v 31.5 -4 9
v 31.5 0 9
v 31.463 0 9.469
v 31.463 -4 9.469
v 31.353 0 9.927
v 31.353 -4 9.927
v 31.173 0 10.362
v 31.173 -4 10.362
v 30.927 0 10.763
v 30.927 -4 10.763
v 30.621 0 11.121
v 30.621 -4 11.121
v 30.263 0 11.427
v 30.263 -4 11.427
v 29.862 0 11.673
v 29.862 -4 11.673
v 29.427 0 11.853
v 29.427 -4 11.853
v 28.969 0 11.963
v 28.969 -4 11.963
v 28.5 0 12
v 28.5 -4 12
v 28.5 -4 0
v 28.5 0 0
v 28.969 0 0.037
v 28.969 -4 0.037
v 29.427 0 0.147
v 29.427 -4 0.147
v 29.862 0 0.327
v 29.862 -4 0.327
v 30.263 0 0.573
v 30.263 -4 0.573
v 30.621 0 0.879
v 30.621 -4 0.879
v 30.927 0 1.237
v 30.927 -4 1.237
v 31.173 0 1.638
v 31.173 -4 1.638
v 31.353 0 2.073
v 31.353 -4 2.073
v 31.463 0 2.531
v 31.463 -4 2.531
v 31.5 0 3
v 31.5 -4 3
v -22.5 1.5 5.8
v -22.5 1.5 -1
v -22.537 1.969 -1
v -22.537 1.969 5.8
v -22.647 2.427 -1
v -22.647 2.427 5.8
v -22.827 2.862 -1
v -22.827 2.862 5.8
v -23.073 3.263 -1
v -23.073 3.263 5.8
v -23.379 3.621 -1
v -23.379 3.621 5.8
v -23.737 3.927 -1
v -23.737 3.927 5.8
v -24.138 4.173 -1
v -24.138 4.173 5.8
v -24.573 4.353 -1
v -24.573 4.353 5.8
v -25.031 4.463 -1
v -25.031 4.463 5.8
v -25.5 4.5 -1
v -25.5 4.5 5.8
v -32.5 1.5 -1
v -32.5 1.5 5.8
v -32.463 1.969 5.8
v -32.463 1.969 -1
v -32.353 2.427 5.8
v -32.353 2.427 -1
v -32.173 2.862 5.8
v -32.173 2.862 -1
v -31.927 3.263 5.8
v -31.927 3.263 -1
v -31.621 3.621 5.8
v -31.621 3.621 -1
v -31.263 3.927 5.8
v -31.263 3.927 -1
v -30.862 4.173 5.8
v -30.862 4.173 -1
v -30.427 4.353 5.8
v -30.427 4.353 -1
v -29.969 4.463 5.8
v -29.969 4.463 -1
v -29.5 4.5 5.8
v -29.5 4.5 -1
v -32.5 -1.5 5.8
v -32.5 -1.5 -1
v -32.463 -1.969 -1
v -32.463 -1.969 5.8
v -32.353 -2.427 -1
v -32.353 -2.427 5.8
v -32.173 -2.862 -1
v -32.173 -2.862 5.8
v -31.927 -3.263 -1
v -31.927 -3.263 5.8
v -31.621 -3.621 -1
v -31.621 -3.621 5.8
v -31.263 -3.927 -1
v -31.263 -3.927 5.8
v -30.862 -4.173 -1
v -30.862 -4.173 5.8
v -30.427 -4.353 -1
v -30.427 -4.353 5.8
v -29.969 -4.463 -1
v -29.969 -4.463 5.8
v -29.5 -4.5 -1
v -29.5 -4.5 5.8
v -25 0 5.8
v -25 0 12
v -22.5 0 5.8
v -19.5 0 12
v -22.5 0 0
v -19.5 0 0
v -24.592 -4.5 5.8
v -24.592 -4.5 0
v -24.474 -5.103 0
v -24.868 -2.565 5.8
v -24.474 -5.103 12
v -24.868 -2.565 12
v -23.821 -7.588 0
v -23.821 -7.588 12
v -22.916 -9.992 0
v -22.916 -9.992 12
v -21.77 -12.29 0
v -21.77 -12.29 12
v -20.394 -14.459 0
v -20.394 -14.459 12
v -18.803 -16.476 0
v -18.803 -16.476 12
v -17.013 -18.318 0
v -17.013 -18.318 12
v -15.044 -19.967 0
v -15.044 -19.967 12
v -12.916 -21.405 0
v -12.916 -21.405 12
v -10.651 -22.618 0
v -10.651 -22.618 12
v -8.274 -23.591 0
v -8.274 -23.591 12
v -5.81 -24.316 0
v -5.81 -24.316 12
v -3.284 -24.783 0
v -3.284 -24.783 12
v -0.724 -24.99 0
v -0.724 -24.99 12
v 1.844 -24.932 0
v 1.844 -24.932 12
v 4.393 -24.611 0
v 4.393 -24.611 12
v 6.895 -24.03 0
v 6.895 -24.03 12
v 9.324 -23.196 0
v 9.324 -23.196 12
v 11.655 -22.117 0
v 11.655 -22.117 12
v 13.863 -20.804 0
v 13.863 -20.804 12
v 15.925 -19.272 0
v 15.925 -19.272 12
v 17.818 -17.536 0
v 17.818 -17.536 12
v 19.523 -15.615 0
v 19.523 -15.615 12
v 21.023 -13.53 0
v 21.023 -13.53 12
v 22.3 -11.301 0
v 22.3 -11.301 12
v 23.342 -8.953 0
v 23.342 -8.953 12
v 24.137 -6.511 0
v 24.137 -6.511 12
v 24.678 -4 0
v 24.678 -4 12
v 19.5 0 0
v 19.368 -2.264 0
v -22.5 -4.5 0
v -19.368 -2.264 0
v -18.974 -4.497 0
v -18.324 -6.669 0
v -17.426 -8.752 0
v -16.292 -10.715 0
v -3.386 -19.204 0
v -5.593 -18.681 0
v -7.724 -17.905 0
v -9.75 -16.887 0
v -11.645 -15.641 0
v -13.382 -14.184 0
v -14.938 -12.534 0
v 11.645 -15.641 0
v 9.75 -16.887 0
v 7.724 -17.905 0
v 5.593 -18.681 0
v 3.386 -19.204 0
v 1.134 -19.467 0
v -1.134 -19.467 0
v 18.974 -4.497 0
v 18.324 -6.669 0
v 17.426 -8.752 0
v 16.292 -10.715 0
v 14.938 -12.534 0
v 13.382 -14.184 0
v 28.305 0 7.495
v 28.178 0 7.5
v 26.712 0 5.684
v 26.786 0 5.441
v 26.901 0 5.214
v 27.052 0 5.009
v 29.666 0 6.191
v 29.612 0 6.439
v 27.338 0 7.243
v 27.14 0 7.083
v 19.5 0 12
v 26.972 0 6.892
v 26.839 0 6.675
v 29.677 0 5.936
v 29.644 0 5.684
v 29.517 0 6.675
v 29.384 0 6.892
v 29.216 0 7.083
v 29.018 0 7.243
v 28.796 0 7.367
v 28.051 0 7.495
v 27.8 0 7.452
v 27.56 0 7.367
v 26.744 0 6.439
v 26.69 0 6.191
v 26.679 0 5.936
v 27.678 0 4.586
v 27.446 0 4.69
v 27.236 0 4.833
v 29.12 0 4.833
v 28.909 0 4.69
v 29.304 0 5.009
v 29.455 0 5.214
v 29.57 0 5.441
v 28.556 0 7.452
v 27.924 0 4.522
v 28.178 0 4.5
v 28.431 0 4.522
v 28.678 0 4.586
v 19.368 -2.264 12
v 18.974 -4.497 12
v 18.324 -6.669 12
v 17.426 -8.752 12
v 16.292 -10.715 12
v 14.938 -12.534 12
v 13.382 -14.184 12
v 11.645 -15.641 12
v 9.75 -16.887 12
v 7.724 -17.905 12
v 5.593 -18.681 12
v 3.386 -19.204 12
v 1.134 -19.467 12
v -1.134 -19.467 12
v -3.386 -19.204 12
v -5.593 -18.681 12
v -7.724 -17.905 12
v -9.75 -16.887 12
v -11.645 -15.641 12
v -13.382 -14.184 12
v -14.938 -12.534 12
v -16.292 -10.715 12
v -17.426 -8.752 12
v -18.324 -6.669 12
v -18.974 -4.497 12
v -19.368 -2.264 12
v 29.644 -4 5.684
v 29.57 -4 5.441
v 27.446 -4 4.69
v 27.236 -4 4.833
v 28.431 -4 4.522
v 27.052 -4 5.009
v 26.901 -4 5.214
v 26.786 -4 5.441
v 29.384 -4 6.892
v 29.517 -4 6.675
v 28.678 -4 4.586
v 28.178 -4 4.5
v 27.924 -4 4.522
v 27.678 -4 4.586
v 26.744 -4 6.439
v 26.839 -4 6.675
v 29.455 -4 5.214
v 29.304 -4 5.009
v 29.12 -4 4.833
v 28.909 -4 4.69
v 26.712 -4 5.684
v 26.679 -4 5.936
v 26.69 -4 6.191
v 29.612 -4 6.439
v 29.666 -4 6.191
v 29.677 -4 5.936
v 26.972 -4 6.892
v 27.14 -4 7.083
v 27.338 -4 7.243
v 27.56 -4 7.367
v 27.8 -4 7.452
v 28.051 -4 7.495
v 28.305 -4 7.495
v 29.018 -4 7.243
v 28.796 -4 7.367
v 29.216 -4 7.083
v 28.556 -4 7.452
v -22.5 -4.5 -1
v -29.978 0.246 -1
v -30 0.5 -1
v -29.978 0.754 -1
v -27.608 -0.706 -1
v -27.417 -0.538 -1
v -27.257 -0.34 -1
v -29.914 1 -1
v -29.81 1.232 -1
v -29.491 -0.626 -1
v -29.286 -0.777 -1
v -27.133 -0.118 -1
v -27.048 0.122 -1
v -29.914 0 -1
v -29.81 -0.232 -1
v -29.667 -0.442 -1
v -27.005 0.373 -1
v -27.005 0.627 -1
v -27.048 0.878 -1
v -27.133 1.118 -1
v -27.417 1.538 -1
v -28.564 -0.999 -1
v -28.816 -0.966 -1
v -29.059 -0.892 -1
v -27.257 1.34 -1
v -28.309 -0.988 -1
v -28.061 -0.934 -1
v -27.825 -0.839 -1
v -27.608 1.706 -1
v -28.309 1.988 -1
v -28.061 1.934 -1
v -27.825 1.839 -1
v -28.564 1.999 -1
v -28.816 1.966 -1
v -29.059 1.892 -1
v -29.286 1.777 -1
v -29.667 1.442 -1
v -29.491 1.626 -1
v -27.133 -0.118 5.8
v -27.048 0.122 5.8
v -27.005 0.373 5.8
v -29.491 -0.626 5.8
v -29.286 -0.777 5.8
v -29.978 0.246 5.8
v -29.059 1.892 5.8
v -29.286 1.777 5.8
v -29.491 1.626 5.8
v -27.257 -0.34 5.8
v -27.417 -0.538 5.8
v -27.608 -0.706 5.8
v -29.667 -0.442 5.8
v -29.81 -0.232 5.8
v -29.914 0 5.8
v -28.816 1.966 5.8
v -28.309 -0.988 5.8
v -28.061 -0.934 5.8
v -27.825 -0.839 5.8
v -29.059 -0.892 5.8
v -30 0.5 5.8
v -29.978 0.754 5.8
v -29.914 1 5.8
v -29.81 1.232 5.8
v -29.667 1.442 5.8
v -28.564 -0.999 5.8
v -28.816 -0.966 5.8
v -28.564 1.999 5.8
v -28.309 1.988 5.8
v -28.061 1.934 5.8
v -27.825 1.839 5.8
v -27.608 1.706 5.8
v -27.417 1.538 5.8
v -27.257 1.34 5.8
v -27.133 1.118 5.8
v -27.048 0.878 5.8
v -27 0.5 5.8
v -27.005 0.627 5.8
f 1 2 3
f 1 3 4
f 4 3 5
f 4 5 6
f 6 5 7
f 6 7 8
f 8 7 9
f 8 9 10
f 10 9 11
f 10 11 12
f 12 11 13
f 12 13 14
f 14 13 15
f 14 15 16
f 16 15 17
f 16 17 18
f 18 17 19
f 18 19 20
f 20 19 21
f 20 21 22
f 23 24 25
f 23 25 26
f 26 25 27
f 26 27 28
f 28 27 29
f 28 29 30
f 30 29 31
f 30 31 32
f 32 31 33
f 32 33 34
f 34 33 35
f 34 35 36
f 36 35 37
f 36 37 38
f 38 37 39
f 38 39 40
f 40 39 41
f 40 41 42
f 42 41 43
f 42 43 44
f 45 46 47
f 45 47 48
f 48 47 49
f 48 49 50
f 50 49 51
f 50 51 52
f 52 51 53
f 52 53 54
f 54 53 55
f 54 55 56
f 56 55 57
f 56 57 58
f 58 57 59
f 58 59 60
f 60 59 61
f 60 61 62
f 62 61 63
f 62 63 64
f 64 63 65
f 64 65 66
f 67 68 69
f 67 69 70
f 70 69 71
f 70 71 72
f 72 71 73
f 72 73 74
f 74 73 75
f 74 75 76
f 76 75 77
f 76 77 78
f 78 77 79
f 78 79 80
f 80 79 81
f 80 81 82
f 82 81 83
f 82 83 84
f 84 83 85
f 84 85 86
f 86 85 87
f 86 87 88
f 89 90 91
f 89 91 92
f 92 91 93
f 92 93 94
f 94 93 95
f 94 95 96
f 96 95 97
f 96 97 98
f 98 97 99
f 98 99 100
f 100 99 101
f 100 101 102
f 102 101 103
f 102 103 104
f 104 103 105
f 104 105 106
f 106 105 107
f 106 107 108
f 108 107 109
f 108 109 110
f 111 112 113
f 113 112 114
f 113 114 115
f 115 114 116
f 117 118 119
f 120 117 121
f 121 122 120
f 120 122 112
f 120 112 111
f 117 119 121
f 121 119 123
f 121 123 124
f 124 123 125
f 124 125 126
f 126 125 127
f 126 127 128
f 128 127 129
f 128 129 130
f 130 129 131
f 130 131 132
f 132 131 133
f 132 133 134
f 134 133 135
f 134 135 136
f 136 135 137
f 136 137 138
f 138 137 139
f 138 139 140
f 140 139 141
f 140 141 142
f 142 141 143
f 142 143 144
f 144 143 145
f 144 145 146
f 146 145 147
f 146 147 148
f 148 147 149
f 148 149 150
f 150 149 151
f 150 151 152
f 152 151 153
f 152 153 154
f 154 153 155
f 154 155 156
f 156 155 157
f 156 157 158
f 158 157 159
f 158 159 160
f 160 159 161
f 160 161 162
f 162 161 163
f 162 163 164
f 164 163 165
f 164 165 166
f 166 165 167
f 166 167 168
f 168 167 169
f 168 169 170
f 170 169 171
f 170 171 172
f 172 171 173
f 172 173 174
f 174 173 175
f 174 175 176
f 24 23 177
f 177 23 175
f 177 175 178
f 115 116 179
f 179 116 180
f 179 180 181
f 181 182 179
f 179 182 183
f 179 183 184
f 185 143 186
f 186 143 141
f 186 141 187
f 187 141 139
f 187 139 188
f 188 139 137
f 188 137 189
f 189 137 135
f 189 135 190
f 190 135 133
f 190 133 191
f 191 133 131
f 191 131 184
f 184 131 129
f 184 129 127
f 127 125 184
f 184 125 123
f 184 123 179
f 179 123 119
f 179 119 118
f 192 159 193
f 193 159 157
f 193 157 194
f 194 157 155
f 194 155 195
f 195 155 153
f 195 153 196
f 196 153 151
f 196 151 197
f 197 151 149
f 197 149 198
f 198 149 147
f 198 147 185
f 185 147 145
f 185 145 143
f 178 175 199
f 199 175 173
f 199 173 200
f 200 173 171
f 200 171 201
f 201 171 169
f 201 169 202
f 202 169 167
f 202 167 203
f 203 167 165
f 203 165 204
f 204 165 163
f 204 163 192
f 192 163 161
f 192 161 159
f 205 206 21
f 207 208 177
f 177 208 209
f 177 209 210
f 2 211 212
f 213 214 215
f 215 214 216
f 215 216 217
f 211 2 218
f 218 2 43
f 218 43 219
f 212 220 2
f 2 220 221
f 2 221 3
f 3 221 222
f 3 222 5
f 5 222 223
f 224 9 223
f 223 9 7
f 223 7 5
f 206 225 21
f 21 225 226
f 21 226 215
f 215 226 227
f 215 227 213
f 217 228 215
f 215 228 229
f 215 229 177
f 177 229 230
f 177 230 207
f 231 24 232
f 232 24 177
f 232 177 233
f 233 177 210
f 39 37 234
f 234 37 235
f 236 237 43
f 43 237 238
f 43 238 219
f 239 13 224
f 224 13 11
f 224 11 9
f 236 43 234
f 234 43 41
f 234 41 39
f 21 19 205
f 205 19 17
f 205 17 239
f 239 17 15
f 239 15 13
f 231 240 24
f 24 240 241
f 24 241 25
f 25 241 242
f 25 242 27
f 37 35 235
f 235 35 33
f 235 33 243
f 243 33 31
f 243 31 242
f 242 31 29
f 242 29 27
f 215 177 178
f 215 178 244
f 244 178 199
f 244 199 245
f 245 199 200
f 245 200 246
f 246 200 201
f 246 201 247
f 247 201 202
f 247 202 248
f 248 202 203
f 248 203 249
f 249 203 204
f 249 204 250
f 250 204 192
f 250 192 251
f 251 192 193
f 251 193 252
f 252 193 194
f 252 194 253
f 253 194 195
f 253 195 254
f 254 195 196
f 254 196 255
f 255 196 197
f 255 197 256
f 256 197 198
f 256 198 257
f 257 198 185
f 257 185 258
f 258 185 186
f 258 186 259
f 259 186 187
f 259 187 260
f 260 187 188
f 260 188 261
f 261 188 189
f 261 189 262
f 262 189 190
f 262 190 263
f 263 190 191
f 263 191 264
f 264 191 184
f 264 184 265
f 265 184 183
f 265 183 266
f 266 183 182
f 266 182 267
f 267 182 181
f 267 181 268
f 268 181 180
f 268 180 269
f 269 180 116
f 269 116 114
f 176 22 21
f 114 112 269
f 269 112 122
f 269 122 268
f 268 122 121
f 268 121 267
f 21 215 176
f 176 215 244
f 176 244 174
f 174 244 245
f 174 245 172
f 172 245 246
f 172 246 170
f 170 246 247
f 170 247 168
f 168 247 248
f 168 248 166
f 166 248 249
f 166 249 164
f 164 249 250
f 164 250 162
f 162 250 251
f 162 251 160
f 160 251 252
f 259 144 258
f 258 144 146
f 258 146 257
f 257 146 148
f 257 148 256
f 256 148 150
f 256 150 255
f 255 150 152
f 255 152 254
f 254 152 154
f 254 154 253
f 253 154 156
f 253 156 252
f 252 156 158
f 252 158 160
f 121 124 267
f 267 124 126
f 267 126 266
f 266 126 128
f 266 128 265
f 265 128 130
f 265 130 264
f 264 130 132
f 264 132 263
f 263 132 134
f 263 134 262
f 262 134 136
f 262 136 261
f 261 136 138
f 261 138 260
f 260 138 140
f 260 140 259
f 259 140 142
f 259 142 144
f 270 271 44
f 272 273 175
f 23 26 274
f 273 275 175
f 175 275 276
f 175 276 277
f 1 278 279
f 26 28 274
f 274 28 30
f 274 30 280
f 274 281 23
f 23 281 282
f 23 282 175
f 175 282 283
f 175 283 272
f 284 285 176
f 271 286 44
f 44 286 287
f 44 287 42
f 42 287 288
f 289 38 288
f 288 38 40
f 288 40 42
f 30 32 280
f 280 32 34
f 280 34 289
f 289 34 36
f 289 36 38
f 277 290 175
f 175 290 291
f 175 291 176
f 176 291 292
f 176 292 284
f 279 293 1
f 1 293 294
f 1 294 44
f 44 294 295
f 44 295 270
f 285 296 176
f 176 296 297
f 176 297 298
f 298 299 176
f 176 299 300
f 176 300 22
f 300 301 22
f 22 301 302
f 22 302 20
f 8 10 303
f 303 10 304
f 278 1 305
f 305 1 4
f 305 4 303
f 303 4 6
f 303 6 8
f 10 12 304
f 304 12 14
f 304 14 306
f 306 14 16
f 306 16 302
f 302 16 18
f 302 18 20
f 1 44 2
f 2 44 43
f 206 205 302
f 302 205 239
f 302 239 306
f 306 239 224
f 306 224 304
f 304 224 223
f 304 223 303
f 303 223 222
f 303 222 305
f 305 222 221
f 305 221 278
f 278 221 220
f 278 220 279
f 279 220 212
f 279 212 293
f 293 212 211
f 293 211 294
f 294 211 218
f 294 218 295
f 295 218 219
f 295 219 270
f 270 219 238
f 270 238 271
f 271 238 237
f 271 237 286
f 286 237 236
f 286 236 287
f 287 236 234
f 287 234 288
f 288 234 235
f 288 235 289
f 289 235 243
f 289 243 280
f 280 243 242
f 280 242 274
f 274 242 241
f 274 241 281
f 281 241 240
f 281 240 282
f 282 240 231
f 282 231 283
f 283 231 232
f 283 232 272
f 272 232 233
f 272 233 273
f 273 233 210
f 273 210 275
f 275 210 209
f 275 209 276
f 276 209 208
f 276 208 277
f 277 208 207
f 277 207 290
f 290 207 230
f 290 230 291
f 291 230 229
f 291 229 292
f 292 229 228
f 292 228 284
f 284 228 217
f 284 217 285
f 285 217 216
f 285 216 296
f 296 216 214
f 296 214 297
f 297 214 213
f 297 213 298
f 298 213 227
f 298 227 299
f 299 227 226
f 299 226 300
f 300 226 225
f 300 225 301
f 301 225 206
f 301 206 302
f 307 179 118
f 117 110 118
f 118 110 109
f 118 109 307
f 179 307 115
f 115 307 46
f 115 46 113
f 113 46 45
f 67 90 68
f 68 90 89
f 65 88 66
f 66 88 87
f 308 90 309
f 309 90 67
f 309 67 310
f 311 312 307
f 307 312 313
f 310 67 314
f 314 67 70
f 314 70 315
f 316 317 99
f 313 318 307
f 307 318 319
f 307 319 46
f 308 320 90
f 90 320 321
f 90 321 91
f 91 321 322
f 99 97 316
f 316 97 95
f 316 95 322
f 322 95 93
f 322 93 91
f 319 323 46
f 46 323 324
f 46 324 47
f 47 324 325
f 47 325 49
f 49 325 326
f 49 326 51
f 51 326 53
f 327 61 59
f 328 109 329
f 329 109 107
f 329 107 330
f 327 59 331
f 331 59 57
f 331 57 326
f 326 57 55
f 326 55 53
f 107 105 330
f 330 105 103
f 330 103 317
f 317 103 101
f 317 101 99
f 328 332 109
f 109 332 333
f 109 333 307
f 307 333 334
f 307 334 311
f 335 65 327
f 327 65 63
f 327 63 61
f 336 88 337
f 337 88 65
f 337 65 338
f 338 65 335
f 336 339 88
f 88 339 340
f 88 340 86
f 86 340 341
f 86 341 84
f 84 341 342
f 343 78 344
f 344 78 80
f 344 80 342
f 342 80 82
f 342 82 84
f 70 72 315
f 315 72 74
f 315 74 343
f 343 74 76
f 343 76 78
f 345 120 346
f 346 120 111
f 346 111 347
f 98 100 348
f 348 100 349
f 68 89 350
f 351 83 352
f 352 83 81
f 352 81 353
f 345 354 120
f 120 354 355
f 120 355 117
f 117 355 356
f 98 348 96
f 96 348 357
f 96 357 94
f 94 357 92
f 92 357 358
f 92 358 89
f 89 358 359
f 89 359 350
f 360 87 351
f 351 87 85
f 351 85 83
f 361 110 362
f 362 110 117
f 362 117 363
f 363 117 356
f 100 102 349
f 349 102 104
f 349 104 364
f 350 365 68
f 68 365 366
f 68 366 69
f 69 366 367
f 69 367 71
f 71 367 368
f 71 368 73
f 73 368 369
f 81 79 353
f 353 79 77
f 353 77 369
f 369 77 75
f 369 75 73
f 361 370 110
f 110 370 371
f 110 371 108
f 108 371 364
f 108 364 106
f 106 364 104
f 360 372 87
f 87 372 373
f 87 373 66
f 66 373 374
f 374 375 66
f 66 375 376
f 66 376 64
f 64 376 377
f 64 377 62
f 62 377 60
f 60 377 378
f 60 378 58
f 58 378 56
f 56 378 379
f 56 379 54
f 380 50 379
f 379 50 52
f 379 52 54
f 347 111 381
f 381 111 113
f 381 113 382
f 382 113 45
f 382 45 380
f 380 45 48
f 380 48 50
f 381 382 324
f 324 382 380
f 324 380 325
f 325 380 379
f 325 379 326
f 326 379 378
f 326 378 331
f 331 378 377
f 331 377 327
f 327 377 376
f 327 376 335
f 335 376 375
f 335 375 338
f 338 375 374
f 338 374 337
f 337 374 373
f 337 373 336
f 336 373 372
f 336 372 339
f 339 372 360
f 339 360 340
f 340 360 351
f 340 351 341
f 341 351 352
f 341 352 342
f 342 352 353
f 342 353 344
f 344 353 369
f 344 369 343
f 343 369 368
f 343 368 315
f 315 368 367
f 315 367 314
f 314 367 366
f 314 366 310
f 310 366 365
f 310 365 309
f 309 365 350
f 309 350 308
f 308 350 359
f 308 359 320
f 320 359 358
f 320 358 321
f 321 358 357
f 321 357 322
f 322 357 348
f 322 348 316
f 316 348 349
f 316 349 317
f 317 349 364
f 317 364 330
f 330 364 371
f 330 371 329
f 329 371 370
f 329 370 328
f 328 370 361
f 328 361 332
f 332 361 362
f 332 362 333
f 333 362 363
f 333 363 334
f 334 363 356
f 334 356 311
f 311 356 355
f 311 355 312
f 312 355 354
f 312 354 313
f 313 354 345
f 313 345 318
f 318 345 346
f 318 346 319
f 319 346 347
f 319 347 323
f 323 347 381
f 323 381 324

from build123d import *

# Parameters (mm, degrees)
BOSS_EXTRUDE8_DEPTH       = 12
SKETCH4_W                 = 8
SKETCH4_H                 = 4
BOSS_EXTRUDE10_DEPTH      = 12
SKETCH5_R                 = 1.5
CUT_EXTRUDE2_DEPTH        = 12
SKETCH6_W                 = 10
SKETCH6_H                 = 9
BOSS_EXTRUDE11_DEPTH      = 1
BOSS_EXTRUDE11_DEPTH_BACK = 5.8
SKETCH7_R                 = 1.5
CUT_EXTRUDE3_DEPTH        = 10
FILLET1_R                 = 3
FILLET3_R                 = 3
FILLET4_R                 = 3
FILLET5_R                 = 3
FILLET6_R                 = 3


with BuildPart() as part:
    # Sketch1 → Boss-Extrude8 (new body)
    with BuildSketch(Plane.XY):
        with BuildLine():
            Line((25, 0), (19.5, 0))
            ThreePointArc((19.5, 0), (0, -19.5), (-19.5, 0))
            Line((-19.5, 0), (-25, 0))
            ThreePointArc((-25, 0), (0, -25), (25, 0))
        make_face()
    extrude(amount=BOSS_EXTRUDE8_DEPTH)

    # Sketch4 → Boss-Extrude10 (add)
    with BuildSketch(Plane(origin=(0, 0, 0), x_dir=(-1, 0, 0), z_dir=(0, 0, -1))):
        with Locations((-27.5, -2)):
            Rectangle(SKETCH4_W, SKETCH4_H)
    extrude(amount=-BOSS_EXTRUDE10_DEPTH)

    # Sketch5 → Cut-Extrude2 (cut)
    with BuildSketch(Plane.XZ.offset(4)):
        with Locations((28.177925359, 6)):
            Circle(SKETCH5_R)
    extrude(amount=-CUT_EXTRUDE2_DEPTH, mode=Mode.SUBTRACT)

    # Sketch6 → Boss-Extrude11 (add, two sides)
    with BuildSketch(Plane(origin=(0, 0, 0), x_dir=(-1, 0, 0), z_dir=(0, 0, -1))) as boss_extrude11_sk:
        with Locations((27.5, 0)):
            Rectangle(SKETCH6_W, SKETCH6_H)
    extrude(amount=BOSS_EXTRUDE11_DEPTH)
    extrude(boss_extrude11_sk.sketch, amount=-BOSS_EXTRUDE11_DEPTH_BACK)

    # Sketch7 → Cut-Extrude3 (cut)
    with BuildSketch(Plane(origin=(0, 0, -1), x_dir=(-1, 0, 0), z_dir=(0, 0, -1))):
        with Locations((28.5, 0.5)):
            Circle(SKETCH7_R)
    extrude(amount=-CUT_EXTRUDE3_DEPTH, mode=Mode.SUBTRACT)

    # Fillet1
    fillet1_edges = [part.edges().sort_by_distance(p)[0] for p in [
        (-32.5, -4.5, 2.4),
    ]]
    fillet(fillet1_edges, radius=FILLET1_R)

    # Fillet3
    fillet3_edges = [part.edges().sort_by_distance(p)[0] for p in [
        (-32.5, 4.5, 2.4),
    ]]
    fillet(fillet3_edges, radius=FILLET3_R)

    # Fillet4
    fillet4_edges = [part.edges().sort_by_distance(p)[0] for p in [
        (-22.5, 4.5, 2.4),
    ]]
    fillet(fillet4_edges, radius=FILLET4_R)

    # Fillet5
    fillet5_edges = [part.edges().sort_by_distance(p)[0] for p in [
        (31.5, -2, 0),
    ]]
    fillet(fillet5_edges, radius=FILLET5_R)

    # Fillet6
    fillet6_edges = [part.edges().sort_by_distance(p)[0] for p in [
        (31.5, -2, 12),
    ]]
    fillet(fillet6_edges, radius=FILLET6_R)


solid = part.part
